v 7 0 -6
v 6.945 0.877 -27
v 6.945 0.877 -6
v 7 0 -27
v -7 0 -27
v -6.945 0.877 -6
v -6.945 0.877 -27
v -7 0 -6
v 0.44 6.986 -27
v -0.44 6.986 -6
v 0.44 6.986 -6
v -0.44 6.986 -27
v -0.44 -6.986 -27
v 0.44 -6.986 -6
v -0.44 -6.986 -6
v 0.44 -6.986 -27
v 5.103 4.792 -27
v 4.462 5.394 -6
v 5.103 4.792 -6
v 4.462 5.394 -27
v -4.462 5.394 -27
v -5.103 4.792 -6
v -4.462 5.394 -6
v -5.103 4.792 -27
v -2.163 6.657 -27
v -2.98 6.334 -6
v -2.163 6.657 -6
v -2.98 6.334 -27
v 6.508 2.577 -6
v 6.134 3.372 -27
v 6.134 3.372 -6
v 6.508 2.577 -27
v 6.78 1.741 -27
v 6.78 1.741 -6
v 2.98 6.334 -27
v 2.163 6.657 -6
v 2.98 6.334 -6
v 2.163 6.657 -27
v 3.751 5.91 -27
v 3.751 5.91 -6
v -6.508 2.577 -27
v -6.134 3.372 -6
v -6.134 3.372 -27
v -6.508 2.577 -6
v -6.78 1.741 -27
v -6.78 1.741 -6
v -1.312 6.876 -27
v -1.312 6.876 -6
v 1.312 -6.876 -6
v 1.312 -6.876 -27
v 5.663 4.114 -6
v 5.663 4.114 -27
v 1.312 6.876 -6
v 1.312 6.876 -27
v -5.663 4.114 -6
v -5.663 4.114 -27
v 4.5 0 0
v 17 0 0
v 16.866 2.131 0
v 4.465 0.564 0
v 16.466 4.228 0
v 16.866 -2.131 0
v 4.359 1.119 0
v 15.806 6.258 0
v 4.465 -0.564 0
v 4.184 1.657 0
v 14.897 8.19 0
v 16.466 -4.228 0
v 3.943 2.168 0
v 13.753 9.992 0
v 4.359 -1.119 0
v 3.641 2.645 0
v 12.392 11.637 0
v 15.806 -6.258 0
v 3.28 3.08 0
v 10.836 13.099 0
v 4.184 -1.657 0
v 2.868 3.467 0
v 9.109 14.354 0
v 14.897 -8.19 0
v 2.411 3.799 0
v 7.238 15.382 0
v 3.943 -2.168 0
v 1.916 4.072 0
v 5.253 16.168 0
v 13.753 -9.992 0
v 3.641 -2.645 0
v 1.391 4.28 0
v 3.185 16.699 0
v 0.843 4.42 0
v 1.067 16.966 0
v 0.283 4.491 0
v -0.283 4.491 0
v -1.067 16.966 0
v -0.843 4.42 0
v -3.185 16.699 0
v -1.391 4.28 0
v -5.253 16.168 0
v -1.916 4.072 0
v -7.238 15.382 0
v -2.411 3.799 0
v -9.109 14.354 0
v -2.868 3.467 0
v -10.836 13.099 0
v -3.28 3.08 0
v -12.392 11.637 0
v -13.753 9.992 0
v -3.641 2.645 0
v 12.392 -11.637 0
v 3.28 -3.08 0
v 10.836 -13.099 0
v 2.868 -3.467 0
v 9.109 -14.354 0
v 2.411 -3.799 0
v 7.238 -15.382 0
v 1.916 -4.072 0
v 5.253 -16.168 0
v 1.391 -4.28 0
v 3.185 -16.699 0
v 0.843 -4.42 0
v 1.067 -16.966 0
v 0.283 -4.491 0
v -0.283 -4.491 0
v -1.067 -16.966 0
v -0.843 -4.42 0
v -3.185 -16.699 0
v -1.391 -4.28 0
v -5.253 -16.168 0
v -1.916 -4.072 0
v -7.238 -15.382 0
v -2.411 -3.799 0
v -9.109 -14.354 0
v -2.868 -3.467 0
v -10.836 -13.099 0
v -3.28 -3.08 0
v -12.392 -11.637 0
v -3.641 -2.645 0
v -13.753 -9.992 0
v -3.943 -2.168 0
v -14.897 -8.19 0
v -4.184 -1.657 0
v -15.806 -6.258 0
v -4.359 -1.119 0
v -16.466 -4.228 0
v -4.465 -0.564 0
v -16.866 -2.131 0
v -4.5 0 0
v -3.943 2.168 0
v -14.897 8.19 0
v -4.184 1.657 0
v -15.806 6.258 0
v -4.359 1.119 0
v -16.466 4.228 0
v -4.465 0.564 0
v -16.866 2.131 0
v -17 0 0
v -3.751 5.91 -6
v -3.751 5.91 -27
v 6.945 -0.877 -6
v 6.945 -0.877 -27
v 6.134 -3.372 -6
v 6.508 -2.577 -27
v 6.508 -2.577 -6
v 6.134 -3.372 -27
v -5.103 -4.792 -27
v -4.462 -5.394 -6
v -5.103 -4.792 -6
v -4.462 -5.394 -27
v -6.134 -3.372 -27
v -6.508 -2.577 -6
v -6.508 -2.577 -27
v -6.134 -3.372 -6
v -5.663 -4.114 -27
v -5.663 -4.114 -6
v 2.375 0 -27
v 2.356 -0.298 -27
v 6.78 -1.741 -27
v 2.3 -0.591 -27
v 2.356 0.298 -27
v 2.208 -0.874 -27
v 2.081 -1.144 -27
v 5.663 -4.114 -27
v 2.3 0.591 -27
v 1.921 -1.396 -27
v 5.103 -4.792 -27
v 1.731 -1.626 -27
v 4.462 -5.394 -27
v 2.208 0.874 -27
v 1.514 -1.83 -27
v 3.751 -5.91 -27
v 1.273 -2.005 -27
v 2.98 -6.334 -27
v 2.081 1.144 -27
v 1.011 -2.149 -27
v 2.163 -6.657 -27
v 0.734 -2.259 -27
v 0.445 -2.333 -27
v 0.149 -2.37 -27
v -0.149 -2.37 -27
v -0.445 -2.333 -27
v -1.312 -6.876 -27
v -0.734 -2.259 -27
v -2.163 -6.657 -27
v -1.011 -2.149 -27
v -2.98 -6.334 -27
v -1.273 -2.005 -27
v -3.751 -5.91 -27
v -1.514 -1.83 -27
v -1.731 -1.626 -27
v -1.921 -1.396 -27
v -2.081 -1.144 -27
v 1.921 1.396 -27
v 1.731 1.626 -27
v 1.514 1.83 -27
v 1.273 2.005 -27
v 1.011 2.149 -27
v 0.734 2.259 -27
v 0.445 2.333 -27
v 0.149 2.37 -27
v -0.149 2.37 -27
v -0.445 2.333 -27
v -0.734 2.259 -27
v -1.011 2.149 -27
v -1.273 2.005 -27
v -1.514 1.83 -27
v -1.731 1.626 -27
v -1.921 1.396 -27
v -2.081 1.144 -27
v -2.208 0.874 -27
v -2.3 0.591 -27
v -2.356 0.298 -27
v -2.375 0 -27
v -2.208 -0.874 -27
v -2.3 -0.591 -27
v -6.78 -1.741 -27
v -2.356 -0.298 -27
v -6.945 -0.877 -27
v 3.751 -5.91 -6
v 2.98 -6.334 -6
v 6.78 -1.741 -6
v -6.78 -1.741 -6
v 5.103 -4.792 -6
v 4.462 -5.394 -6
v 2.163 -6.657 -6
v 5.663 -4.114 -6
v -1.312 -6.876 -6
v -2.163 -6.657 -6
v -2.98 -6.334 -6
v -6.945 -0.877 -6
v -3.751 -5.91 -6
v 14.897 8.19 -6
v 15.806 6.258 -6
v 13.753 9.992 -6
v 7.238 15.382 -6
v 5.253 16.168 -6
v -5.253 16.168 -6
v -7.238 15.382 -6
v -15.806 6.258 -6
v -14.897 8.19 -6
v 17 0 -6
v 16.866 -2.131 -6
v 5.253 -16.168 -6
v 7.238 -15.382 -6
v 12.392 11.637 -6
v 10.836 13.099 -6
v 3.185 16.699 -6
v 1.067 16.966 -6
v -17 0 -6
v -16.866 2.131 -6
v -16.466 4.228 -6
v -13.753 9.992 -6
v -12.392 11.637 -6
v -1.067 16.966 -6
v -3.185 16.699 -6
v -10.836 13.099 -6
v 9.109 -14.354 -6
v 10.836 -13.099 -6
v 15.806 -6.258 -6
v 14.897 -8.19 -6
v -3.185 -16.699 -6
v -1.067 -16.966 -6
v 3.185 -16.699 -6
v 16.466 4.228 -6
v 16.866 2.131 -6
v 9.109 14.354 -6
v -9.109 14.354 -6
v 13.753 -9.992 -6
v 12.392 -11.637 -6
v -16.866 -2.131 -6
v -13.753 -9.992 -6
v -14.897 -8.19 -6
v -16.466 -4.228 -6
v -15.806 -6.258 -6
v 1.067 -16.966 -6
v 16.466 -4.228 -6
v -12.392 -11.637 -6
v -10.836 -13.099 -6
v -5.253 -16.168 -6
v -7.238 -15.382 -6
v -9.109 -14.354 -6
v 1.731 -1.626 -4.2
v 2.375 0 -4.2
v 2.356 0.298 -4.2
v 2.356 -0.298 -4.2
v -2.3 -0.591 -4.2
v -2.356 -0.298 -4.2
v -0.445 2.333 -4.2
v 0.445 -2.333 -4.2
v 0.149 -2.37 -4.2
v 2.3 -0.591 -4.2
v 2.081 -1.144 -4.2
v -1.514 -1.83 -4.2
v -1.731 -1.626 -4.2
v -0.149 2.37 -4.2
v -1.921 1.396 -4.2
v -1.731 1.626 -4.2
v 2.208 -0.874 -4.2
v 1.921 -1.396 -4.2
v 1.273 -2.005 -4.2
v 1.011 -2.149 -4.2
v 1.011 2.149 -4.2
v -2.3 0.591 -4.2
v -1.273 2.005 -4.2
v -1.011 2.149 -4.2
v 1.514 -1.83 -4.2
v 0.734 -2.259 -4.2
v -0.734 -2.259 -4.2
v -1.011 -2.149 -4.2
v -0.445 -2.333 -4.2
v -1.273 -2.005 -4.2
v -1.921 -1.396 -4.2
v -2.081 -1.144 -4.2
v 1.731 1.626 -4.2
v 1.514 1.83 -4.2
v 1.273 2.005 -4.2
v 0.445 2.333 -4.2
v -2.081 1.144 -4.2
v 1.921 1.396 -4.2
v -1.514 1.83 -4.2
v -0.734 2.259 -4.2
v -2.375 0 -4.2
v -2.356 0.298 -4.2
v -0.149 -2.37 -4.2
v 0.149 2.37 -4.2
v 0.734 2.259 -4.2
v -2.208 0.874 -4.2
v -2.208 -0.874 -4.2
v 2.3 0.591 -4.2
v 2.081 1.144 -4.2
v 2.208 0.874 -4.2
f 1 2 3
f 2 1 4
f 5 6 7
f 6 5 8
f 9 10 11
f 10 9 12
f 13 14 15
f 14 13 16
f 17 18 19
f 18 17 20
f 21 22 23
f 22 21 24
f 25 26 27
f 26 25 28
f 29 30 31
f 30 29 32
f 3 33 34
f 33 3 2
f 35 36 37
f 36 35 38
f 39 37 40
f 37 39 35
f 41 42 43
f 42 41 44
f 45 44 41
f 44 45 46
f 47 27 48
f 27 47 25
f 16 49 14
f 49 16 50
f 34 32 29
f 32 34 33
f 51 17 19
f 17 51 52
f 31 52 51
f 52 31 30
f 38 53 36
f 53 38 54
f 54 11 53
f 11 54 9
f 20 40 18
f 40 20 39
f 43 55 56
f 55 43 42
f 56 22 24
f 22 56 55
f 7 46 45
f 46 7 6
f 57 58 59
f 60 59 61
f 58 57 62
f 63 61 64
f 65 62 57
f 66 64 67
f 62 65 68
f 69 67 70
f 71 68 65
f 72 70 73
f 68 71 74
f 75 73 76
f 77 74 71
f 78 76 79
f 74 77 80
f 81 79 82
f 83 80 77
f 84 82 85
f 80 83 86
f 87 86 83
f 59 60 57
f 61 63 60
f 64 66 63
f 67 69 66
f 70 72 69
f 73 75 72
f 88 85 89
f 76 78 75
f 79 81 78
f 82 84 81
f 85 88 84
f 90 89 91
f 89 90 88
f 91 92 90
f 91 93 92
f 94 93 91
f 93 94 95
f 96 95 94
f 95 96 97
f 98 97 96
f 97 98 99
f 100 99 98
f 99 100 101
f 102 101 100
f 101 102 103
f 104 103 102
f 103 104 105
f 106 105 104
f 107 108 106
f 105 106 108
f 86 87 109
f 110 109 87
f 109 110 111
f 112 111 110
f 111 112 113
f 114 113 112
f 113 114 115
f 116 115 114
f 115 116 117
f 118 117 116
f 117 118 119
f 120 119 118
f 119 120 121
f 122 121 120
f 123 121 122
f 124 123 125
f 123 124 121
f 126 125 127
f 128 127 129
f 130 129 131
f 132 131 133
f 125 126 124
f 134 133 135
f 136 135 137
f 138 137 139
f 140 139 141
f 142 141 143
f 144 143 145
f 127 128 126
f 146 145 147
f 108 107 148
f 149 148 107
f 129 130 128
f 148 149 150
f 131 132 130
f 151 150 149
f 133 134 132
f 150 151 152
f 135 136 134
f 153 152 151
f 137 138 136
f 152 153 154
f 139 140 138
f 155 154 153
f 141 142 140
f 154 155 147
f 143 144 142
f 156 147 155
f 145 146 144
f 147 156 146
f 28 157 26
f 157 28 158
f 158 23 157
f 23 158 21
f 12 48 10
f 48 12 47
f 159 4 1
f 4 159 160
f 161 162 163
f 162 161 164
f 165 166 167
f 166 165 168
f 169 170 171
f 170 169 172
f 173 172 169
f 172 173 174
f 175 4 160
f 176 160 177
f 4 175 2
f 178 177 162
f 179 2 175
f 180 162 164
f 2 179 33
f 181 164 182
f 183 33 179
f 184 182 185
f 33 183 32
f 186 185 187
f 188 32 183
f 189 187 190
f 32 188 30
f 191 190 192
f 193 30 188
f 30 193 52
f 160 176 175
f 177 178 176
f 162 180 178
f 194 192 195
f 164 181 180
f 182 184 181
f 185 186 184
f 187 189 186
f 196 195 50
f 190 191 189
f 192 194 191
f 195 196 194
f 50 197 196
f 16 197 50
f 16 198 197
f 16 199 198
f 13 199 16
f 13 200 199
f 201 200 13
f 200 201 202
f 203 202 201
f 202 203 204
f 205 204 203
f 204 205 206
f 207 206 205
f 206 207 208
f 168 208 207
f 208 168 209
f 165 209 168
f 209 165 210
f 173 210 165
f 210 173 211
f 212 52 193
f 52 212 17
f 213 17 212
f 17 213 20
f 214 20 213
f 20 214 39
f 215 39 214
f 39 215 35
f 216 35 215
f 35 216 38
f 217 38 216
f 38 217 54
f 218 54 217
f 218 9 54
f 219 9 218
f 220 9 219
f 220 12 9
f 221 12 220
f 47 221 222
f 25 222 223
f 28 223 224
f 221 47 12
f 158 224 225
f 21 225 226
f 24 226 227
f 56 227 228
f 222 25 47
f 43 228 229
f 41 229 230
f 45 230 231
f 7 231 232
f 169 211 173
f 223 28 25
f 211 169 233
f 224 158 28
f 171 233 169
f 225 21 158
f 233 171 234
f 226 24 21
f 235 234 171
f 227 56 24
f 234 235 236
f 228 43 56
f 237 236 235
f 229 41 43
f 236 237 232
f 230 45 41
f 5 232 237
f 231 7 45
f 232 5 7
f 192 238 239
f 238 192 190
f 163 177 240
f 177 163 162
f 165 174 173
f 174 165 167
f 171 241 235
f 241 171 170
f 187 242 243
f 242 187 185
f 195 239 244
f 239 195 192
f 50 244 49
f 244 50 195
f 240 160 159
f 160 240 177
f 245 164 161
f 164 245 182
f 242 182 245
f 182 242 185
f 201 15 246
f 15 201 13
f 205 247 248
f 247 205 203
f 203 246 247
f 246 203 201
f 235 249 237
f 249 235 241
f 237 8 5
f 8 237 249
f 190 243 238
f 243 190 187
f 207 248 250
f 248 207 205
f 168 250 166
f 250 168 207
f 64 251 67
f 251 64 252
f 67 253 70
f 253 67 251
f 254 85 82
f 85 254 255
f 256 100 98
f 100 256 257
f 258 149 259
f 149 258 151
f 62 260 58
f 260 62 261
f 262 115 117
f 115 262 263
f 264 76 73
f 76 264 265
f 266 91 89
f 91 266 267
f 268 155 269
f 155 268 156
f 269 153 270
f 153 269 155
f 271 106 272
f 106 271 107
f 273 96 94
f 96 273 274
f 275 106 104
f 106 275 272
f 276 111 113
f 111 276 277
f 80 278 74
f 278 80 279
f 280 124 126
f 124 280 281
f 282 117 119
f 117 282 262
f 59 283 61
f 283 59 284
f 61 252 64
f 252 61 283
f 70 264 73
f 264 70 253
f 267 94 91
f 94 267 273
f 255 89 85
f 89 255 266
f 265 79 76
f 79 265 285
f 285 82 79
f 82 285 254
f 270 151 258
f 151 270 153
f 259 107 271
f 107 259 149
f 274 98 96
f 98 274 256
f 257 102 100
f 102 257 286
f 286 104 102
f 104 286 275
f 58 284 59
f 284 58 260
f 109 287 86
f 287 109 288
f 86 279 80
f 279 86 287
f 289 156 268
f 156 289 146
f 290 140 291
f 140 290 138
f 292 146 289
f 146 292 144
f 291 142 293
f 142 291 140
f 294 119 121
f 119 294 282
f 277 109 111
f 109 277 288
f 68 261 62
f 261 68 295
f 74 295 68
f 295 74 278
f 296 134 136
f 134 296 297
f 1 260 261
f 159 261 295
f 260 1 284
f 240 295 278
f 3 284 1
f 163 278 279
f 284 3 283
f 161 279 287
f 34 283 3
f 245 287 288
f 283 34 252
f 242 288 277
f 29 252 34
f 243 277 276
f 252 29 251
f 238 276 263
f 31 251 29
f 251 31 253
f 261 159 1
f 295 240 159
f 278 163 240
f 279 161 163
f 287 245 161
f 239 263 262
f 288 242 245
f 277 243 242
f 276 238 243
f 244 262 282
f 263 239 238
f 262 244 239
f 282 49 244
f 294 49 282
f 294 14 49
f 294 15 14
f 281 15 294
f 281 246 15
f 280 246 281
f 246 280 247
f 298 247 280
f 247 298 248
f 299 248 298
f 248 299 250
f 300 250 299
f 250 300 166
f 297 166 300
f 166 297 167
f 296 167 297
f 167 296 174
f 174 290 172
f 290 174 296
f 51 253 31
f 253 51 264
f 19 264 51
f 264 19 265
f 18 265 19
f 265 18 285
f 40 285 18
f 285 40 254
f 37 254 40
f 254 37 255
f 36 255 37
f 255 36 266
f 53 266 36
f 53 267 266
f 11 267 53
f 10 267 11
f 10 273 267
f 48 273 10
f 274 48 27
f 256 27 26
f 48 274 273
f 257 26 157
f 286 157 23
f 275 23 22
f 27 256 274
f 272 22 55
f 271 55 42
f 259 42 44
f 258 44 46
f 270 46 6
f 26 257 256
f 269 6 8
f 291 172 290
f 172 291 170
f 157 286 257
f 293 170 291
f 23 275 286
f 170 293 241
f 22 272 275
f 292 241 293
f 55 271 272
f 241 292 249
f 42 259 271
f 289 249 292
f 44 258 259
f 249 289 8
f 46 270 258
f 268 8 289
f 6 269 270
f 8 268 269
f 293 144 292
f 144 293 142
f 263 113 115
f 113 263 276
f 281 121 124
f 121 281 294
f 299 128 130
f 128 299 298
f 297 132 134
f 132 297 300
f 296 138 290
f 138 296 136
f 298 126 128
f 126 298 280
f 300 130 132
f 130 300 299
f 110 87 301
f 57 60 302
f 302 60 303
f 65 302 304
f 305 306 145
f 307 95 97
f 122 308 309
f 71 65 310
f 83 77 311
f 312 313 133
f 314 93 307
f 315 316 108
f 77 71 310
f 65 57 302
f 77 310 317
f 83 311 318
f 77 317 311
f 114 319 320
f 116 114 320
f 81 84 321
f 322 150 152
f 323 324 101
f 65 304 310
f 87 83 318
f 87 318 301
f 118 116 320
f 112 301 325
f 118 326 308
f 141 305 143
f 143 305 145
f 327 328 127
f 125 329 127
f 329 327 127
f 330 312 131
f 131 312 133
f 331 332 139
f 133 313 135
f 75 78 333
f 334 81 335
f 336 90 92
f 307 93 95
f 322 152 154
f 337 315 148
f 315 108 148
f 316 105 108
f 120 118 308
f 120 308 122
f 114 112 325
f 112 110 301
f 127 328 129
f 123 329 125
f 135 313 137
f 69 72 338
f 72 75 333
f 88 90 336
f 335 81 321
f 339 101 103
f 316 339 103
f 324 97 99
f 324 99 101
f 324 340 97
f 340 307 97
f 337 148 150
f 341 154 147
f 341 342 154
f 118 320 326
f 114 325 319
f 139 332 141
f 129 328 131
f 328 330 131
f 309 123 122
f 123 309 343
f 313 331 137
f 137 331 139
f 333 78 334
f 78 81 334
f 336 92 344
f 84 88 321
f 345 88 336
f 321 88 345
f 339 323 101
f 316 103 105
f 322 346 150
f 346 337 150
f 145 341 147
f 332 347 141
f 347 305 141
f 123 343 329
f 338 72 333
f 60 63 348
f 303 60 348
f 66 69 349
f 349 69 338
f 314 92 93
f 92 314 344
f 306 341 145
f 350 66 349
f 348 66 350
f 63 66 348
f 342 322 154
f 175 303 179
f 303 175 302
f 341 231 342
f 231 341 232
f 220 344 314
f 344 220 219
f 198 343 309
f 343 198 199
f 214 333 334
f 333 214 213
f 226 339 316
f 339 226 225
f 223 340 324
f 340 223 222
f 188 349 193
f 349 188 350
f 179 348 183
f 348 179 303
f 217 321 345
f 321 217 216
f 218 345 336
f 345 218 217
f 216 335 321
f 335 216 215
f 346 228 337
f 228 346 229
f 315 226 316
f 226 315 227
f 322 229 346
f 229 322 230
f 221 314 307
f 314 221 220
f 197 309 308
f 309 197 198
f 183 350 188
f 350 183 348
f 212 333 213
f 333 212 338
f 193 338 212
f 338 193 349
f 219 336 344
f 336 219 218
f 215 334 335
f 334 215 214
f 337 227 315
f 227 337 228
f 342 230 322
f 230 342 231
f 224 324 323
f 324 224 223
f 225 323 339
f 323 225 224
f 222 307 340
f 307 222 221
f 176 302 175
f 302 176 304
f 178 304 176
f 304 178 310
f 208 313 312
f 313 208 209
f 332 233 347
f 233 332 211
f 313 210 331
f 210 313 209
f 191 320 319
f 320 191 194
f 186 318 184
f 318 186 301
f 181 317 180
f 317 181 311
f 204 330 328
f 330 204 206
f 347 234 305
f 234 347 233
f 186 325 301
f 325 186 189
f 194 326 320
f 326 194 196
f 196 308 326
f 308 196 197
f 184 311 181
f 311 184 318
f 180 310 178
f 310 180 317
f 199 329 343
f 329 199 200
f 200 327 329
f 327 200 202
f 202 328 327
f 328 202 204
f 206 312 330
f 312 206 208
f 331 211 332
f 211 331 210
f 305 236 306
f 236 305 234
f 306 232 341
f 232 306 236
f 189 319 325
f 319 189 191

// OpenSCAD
$fn = 50;


difference() {
	union() {
		translate(v = [0, 0, -27.0000000000]) {
			cylinder(h = 27, r = 7.0000000000);
		}
		translate(v = [0, 0, -6.0000000000]) {
			cylinder(h = 6, r = 17.0000000000);
		}
	}
	union() {
		translate(v = [0, 0, 0]) {
			rotate(a = [0, 0, 0]) {
				difference() {
					union() {
						#translate(v = [0, 0, -27.0000000000]) {
							cylinder(h = 27, r = 2.2500000000);
						}
						#translate(v = [0, 0, -4.2000000000]) {
							cylinder(h = 4.2000000000, r1 = 2.3750000000, r2 = 4.5000000000);
						}
						#translate(v = [0, 0, -27.0000000000]) {
							cylinder(h = 27, r = 2.3750000000);
						}
						#translate(v = [0, 0, -27.0000000000]) {
							cylinder(h = 27, r = 2.2500000000);
						}
					}
					union();
				}
			}
		}
	}
}
